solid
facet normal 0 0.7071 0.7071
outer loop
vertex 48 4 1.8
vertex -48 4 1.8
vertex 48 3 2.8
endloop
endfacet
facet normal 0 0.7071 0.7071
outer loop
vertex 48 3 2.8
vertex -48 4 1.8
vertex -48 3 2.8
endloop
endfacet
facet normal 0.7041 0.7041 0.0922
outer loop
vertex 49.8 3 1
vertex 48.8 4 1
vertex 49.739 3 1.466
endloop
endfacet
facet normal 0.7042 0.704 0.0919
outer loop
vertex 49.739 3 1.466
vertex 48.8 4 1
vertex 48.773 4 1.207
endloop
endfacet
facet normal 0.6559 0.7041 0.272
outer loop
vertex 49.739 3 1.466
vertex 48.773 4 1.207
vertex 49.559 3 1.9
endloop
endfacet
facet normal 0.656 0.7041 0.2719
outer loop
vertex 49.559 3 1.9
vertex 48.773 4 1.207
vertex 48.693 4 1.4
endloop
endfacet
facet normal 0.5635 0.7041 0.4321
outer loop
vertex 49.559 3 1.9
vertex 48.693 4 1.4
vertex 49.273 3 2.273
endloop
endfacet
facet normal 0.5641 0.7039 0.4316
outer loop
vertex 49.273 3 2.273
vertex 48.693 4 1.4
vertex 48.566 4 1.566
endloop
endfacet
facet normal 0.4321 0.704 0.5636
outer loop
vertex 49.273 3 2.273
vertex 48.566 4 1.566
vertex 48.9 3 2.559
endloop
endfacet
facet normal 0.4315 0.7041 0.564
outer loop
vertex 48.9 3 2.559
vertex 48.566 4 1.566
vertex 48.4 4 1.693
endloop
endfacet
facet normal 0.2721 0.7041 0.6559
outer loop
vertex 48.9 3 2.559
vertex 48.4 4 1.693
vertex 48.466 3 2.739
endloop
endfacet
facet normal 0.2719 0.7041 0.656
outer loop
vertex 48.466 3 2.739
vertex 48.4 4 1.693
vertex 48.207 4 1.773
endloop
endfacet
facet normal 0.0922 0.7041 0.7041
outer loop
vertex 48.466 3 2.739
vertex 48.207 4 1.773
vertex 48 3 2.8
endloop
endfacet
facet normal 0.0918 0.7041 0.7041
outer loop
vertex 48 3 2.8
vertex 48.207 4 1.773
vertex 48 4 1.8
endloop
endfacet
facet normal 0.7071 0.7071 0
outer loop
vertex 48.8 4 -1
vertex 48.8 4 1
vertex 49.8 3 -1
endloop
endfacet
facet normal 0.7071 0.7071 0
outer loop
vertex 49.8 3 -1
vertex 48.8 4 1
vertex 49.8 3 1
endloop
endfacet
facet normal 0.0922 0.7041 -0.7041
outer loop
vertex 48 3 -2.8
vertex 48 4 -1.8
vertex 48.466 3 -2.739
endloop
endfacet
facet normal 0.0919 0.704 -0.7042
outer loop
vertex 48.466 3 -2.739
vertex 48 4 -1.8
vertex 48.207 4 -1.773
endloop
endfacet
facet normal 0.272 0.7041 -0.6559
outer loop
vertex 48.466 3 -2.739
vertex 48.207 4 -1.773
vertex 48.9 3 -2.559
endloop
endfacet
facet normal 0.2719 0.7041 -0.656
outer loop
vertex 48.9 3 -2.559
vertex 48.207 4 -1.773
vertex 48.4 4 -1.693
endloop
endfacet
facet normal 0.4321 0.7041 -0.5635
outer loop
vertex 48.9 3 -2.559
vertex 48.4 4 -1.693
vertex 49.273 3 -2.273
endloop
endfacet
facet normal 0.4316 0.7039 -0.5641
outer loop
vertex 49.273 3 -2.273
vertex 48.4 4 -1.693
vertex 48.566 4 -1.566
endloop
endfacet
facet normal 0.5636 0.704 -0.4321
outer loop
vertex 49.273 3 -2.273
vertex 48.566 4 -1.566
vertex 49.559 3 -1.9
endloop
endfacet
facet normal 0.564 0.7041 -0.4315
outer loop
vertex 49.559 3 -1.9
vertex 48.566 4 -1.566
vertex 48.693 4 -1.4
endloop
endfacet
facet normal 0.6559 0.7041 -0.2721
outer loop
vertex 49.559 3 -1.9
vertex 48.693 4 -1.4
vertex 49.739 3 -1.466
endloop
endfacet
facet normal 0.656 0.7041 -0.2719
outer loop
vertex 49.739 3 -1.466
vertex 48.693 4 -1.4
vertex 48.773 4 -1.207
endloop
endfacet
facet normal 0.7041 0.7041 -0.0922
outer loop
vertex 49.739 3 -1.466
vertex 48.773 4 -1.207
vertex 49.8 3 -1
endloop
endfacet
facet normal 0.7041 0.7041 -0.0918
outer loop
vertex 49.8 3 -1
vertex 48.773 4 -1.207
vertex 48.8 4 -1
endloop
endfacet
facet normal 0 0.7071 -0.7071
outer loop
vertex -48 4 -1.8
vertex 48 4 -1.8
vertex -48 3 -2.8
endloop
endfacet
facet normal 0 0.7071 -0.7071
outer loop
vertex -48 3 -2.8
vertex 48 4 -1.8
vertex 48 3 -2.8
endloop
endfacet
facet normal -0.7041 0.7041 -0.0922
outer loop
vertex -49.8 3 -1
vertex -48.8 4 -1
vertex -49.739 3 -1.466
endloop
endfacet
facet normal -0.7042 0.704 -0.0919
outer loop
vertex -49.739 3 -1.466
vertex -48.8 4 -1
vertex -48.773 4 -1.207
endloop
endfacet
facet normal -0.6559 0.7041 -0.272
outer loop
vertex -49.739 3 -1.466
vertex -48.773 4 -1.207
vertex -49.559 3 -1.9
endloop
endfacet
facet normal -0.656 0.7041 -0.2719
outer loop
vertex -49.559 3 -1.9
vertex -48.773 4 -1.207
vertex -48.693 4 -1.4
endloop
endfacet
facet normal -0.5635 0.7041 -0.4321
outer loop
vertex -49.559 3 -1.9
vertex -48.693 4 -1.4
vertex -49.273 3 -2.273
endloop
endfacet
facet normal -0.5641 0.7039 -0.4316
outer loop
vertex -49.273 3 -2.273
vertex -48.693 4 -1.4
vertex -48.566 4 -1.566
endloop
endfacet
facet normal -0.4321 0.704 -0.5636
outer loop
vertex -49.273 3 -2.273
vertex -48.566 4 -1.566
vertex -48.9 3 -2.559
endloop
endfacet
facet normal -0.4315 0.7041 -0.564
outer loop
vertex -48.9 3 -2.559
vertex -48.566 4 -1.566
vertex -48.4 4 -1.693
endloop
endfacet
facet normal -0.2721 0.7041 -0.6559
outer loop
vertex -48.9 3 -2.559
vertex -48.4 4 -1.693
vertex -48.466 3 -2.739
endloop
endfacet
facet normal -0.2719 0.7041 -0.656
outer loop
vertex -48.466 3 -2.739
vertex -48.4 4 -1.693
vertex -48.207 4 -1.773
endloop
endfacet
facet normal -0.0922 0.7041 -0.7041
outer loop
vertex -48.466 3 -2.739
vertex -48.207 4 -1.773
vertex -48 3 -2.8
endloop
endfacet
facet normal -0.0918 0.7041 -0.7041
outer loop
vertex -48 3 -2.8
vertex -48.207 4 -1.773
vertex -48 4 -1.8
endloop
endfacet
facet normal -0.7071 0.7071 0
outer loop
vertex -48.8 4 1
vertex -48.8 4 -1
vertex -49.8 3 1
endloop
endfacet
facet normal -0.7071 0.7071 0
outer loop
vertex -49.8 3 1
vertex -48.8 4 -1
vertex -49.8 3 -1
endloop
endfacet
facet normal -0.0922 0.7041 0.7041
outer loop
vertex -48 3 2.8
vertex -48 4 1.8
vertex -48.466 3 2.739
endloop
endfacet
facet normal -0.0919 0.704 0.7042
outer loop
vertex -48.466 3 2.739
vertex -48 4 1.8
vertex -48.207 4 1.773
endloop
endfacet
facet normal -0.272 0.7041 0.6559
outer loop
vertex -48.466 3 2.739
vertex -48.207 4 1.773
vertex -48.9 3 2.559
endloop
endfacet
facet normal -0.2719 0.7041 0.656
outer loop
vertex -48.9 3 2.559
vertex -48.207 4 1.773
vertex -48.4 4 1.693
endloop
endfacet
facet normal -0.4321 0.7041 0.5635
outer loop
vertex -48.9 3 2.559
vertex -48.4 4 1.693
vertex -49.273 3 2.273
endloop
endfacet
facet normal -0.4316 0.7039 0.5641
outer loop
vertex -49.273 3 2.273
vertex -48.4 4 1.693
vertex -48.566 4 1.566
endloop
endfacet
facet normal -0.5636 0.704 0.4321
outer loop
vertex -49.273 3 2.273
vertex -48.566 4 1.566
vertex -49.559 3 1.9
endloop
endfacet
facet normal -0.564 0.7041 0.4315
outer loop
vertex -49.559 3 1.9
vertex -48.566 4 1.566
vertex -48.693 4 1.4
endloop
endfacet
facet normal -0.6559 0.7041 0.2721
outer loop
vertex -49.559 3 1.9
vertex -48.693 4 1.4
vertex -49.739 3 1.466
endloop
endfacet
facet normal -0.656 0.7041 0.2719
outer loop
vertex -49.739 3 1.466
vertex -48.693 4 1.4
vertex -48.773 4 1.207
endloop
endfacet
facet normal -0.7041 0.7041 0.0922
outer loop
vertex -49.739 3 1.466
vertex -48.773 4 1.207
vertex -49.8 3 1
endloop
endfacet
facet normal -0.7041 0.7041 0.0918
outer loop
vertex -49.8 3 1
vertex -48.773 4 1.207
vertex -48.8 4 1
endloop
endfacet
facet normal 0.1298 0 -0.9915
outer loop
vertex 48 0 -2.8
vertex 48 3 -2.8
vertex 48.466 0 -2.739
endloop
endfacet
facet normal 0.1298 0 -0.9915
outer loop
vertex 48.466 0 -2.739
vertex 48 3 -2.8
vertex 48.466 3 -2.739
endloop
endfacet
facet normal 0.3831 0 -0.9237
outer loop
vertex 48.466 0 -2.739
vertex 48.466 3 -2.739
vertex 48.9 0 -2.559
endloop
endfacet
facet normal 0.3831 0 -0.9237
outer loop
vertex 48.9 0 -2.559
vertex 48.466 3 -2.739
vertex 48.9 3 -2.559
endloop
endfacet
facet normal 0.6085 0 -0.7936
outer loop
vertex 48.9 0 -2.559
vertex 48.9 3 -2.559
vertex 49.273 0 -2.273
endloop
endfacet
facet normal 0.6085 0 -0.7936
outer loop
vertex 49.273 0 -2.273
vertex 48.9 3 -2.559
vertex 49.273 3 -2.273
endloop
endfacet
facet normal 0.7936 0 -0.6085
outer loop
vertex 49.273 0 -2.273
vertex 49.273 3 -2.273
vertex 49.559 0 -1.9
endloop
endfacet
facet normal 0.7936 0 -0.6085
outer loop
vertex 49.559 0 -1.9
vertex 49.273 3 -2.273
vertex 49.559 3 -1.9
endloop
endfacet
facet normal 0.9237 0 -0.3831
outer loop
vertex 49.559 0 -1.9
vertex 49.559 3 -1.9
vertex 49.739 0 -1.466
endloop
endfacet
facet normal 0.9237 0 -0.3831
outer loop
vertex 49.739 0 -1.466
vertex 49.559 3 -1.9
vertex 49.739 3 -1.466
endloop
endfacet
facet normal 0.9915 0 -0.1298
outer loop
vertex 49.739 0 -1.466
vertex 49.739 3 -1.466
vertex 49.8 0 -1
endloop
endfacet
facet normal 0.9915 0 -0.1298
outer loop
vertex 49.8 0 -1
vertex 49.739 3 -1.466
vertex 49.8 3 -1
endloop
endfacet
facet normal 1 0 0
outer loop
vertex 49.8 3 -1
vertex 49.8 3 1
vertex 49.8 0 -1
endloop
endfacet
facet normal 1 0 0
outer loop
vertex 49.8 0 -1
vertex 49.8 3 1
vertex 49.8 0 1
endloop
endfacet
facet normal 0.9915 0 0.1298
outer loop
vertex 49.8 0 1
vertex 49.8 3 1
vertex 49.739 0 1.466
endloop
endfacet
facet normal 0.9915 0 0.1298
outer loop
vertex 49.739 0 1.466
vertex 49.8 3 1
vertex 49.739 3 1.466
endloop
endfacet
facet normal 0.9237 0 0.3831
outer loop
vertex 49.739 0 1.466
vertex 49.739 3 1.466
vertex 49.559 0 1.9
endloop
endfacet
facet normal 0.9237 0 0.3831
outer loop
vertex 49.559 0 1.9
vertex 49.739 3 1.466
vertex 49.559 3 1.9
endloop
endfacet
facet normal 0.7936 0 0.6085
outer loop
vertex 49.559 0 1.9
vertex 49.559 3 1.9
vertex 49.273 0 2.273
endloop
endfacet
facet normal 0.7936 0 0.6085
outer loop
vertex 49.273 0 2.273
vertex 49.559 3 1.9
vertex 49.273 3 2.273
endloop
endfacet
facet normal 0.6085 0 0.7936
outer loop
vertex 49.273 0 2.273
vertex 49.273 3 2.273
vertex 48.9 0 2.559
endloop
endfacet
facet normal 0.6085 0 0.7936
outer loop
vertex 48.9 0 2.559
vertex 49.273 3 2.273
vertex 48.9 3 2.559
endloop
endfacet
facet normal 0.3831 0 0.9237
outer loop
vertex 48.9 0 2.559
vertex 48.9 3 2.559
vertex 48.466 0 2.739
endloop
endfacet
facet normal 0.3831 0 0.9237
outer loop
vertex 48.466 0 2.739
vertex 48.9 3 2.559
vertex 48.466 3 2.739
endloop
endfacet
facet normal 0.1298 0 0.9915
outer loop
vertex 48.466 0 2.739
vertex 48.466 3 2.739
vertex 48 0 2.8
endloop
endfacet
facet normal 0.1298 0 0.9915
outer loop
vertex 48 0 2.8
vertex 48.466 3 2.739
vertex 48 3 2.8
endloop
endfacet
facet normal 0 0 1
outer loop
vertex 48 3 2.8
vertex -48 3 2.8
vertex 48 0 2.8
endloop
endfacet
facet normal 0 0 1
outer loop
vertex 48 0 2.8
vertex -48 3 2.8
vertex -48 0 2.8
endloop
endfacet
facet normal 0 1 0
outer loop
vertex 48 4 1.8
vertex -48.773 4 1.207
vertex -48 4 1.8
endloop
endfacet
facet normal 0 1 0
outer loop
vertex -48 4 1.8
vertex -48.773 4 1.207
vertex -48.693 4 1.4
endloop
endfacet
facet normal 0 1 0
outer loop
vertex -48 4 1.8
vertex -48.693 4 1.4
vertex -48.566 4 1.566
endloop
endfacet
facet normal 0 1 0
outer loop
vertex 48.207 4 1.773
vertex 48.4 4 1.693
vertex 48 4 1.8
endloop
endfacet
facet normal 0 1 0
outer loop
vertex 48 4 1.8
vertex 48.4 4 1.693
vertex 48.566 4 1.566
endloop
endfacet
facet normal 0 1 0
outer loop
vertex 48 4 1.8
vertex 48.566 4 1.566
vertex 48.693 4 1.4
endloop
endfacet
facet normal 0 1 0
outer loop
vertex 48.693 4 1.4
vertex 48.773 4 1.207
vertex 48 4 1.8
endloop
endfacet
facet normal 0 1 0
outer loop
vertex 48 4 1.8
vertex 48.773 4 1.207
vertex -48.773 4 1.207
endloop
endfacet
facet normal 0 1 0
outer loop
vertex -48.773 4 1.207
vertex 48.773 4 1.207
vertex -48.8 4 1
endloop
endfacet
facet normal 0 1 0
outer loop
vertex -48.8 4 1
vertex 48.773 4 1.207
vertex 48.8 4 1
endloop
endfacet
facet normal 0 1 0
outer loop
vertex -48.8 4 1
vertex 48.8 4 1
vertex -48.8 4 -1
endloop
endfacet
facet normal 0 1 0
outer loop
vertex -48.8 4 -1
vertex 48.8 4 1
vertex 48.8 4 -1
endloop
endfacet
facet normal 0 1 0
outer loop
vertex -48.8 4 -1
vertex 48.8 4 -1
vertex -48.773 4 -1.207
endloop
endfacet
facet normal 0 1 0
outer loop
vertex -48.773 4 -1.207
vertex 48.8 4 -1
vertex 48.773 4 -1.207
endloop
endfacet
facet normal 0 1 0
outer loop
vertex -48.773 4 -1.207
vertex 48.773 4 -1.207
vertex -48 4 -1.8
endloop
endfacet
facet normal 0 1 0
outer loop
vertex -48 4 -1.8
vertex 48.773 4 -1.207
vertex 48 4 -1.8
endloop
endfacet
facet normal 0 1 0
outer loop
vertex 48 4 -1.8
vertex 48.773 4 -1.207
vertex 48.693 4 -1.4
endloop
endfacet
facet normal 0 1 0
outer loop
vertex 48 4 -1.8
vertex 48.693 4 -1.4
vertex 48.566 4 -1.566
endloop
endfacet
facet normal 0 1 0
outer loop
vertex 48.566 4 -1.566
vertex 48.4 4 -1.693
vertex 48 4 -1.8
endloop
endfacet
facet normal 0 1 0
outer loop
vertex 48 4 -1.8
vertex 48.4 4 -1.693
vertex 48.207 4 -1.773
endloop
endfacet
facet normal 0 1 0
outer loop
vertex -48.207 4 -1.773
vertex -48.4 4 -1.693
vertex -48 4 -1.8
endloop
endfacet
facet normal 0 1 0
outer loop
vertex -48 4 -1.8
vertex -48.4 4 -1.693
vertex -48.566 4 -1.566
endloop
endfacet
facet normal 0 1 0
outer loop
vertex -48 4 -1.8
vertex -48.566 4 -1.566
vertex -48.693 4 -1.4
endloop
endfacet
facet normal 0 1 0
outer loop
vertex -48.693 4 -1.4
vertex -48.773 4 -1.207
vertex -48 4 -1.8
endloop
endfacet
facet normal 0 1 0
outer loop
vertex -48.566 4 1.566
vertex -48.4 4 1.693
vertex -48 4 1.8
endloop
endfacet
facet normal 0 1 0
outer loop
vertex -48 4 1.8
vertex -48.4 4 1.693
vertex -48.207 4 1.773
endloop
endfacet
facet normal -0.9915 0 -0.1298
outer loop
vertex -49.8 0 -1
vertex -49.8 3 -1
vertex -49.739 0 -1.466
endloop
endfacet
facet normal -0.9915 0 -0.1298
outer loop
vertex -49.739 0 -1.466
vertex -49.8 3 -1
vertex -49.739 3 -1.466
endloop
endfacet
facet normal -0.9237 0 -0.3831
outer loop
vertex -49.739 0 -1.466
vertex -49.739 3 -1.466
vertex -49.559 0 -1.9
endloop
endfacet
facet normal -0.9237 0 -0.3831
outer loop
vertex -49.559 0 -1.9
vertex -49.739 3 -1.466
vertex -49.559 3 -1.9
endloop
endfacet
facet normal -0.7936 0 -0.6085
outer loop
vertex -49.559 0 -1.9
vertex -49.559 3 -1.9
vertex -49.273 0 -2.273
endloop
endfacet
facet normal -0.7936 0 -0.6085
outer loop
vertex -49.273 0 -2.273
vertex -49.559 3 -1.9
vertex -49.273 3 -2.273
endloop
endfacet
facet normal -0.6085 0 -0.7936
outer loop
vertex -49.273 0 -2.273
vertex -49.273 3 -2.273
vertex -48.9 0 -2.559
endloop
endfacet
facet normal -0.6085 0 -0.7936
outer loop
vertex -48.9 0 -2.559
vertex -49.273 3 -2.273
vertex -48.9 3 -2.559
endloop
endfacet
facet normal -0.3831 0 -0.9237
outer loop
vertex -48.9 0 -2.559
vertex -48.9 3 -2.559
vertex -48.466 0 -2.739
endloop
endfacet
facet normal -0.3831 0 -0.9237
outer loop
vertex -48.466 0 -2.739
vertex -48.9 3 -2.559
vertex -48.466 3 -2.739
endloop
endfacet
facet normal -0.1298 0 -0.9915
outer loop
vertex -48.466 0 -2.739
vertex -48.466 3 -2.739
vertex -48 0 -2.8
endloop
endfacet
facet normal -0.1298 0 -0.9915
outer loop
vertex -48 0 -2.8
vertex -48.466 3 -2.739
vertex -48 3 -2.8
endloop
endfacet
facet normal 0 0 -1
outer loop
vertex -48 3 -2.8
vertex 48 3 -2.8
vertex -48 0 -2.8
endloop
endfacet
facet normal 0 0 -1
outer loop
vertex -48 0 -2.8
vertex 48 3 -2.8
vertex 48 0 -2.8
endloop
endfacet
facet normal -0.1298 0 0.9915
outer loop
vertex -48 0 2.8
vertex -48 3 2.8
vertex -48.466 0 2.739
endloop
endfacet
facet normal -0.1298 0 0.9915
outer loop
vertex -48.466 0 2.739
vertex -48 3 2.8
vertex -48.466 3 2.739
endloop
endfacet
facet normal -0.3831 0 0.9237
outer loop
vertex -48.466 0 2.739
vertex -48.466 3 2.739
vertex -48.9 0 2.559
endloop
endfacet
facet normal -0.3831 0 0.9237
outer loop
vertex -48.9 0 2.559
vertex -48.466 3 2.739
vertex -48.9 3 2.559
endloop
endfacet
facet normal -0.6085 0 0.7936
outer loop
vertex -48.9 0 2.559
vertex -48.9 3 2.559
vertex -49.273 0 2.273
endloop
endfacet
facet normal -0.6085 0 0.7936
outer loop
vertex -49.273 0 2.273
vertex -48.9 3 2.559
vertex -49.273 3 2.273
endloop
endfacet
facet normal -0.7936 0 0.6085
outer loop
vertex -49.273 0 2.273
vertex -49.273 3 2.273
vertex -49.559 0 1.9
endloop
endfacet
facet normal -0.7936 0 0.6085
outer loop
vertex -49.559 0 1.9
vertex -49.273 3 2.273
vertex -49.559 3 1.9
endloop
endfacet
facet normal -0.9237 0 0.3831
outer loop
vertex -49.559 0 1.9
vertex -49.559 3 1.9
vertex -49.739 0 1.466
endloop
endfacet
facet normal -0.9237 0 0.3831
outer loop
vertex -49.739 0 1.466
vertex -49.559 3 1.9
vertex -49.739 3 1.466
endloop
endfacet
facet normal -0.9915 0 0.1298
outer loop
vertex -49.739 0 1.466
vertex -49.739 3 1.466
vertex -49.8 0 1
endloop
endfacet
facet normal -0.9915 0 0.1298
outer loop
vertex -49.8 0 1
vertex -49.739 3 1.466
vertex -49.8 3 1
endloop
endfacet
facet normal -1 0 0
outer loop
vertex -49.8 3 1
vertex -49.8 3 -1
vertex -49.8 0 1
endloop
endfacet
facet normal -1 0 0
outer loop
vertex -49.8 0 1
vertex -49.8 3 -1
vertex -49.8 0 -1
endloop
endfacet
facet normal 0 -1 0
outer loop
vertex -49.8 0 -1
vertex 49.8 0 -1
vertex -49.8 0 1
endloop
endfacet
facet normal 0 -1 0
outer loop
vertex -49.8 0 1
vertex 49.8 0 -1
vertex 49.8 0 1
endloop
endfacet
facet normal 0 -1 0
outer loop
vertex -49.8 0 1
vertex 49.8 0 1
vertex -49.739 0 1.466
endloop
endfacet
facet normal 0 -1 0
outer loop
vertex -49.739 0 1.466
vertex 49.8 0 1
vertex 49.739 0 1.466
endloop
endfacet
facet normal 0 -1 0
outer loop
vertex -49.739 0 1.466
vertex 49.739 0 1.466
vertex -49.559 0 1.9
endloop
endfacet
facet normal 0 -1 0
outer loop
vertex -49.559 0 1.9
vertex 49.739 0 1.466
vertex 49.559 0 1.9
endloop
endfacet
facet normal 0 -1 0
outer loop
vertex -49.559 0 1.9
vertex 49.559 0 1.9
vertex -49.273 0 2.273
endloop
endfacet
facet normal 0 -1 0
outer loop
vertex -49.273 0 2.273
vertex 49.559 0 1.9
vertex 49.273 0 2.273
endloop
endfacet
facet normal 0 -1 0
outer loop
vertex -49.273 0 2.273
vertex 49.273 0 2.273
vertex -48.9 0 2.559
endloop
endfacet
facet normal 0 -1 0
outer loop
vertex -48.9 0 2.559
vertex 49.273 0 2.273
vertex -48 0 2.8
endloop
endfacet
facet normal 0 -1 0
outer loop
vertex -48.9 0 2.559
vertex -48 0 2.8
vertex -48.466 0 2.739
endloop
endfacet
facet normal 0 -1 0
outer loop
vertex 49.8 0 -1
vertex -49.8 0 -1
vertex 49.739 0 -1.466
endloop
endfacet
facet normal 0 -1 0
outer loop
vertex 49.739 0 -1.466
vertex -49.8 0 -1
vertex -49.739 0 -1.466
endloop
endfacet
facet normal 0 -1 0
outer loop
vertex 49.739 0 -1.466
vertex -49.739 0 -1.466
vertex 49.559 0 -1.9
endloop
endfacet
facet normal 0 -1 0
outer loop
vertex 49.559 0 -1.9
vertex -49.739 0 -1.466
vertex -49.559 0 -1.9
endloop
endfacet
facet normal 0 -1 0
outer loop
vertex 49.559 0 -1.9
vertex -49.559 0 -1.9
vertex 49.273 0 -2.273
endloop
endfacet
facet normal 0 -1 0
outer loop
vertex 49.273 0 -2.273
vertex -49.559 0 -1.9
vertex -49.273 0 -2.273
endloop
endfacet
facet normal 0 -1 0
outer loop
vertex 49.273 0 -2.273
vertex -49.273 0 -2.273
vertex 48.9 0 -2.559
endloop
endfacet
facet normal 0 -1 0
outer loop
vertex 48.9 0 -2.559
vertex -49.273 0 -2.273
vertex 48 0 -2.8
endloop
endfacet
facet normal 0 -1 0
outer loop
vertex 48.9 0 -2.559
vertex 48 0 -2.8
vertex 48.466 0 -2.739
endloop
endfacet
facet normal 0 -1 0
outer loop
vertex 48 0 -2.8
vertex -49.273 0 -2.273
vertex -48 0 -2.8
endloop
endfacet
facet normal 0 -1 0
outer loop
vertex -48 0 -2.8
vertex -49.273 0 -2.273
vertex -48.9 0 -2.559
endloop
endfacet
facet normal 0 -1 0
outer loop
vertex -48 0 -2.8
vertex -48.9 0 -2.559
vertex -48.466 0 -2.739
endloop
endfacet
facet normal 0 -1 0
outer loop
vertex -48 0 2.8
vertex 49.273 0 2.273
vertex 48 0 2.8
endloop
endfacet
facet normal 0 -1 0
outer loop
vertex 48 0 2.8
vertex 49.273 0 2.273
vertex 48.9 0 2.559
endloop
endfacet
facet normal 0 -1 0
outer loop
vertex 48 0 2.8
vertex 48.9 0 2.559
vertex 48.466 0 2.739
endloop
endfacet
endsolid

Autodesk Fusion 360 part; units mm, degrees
sketch "Foot Outline" plane through (0, 0, 0) normal (0, 1, 0) x (1, 0, 0)
  line L0 (48, 3) -> (-48, 3)
  line L1 (-50, 1) -> (-50, -1)
  line L2 (-48, -3) -> (48, -3)
  line L3 (50, -1) -> (50, 1)
  line L4 (50, 3) -> (-50, -3) construction
  line L5 (-50, 3) -> (50, -3) construction
  arc A0 (-50, -1) -> (-48, -3) centre (-48, -1) ccw
  arc A1 (-48, 3) -> (-50, 1) centre (-48, 1) ccw
  arc A2 (50, 1) -> (48, 3) centre (48, 1) ccw
  arc A3 (48, -3) -> (50, -1) centre (48, -1) ccw
  arc A4 (-49.8, -1) -> (-48, -2.8) centre (-48, -1) ccw
  line L6 (-48, -2.8) -> (48, -2.8)
  arc A5 (48, -2.8) -> (49.8, -1) centre (48, -1) ccw
  line L7 (49.8, -1) -> (49.8, 1)
  arc A6 (49.8, 1) -> (48, 2.8) centre (48, 1) ccw
  line L8 (48, 2.8) -> (-48, 2.8)
  arc A7 (-48, 2.8) -> (-49.8, 1) centre (-48, 1) ccw
  line L9 (-49.8, 1) -> (-49.8, -1)
  dimension "d1" = 100
  dimension "d2" = 6
  dimension "d3" = 2
  dimension "d4" = 2
  dimension "d5" = 2
  dimension "d9" = -0.2
extrude "Extrude2" add sketch "Foot Outline" along normal blind 4 contours A4 L6 A5 L7 A6 L8 A7 L9
chamfer "Chamfer2" distance 1 angle 45 8 edges at (0, 4, 2.8) (49.2728, 4, 2.2728) (49.8, 4, 0) (49.2728, 4, -2.2728) (0, 4, -2.8) (-49.2728, 4, -2.2728) (-49.8, 4, 0) (-49.2728, 4, 2.2728)
